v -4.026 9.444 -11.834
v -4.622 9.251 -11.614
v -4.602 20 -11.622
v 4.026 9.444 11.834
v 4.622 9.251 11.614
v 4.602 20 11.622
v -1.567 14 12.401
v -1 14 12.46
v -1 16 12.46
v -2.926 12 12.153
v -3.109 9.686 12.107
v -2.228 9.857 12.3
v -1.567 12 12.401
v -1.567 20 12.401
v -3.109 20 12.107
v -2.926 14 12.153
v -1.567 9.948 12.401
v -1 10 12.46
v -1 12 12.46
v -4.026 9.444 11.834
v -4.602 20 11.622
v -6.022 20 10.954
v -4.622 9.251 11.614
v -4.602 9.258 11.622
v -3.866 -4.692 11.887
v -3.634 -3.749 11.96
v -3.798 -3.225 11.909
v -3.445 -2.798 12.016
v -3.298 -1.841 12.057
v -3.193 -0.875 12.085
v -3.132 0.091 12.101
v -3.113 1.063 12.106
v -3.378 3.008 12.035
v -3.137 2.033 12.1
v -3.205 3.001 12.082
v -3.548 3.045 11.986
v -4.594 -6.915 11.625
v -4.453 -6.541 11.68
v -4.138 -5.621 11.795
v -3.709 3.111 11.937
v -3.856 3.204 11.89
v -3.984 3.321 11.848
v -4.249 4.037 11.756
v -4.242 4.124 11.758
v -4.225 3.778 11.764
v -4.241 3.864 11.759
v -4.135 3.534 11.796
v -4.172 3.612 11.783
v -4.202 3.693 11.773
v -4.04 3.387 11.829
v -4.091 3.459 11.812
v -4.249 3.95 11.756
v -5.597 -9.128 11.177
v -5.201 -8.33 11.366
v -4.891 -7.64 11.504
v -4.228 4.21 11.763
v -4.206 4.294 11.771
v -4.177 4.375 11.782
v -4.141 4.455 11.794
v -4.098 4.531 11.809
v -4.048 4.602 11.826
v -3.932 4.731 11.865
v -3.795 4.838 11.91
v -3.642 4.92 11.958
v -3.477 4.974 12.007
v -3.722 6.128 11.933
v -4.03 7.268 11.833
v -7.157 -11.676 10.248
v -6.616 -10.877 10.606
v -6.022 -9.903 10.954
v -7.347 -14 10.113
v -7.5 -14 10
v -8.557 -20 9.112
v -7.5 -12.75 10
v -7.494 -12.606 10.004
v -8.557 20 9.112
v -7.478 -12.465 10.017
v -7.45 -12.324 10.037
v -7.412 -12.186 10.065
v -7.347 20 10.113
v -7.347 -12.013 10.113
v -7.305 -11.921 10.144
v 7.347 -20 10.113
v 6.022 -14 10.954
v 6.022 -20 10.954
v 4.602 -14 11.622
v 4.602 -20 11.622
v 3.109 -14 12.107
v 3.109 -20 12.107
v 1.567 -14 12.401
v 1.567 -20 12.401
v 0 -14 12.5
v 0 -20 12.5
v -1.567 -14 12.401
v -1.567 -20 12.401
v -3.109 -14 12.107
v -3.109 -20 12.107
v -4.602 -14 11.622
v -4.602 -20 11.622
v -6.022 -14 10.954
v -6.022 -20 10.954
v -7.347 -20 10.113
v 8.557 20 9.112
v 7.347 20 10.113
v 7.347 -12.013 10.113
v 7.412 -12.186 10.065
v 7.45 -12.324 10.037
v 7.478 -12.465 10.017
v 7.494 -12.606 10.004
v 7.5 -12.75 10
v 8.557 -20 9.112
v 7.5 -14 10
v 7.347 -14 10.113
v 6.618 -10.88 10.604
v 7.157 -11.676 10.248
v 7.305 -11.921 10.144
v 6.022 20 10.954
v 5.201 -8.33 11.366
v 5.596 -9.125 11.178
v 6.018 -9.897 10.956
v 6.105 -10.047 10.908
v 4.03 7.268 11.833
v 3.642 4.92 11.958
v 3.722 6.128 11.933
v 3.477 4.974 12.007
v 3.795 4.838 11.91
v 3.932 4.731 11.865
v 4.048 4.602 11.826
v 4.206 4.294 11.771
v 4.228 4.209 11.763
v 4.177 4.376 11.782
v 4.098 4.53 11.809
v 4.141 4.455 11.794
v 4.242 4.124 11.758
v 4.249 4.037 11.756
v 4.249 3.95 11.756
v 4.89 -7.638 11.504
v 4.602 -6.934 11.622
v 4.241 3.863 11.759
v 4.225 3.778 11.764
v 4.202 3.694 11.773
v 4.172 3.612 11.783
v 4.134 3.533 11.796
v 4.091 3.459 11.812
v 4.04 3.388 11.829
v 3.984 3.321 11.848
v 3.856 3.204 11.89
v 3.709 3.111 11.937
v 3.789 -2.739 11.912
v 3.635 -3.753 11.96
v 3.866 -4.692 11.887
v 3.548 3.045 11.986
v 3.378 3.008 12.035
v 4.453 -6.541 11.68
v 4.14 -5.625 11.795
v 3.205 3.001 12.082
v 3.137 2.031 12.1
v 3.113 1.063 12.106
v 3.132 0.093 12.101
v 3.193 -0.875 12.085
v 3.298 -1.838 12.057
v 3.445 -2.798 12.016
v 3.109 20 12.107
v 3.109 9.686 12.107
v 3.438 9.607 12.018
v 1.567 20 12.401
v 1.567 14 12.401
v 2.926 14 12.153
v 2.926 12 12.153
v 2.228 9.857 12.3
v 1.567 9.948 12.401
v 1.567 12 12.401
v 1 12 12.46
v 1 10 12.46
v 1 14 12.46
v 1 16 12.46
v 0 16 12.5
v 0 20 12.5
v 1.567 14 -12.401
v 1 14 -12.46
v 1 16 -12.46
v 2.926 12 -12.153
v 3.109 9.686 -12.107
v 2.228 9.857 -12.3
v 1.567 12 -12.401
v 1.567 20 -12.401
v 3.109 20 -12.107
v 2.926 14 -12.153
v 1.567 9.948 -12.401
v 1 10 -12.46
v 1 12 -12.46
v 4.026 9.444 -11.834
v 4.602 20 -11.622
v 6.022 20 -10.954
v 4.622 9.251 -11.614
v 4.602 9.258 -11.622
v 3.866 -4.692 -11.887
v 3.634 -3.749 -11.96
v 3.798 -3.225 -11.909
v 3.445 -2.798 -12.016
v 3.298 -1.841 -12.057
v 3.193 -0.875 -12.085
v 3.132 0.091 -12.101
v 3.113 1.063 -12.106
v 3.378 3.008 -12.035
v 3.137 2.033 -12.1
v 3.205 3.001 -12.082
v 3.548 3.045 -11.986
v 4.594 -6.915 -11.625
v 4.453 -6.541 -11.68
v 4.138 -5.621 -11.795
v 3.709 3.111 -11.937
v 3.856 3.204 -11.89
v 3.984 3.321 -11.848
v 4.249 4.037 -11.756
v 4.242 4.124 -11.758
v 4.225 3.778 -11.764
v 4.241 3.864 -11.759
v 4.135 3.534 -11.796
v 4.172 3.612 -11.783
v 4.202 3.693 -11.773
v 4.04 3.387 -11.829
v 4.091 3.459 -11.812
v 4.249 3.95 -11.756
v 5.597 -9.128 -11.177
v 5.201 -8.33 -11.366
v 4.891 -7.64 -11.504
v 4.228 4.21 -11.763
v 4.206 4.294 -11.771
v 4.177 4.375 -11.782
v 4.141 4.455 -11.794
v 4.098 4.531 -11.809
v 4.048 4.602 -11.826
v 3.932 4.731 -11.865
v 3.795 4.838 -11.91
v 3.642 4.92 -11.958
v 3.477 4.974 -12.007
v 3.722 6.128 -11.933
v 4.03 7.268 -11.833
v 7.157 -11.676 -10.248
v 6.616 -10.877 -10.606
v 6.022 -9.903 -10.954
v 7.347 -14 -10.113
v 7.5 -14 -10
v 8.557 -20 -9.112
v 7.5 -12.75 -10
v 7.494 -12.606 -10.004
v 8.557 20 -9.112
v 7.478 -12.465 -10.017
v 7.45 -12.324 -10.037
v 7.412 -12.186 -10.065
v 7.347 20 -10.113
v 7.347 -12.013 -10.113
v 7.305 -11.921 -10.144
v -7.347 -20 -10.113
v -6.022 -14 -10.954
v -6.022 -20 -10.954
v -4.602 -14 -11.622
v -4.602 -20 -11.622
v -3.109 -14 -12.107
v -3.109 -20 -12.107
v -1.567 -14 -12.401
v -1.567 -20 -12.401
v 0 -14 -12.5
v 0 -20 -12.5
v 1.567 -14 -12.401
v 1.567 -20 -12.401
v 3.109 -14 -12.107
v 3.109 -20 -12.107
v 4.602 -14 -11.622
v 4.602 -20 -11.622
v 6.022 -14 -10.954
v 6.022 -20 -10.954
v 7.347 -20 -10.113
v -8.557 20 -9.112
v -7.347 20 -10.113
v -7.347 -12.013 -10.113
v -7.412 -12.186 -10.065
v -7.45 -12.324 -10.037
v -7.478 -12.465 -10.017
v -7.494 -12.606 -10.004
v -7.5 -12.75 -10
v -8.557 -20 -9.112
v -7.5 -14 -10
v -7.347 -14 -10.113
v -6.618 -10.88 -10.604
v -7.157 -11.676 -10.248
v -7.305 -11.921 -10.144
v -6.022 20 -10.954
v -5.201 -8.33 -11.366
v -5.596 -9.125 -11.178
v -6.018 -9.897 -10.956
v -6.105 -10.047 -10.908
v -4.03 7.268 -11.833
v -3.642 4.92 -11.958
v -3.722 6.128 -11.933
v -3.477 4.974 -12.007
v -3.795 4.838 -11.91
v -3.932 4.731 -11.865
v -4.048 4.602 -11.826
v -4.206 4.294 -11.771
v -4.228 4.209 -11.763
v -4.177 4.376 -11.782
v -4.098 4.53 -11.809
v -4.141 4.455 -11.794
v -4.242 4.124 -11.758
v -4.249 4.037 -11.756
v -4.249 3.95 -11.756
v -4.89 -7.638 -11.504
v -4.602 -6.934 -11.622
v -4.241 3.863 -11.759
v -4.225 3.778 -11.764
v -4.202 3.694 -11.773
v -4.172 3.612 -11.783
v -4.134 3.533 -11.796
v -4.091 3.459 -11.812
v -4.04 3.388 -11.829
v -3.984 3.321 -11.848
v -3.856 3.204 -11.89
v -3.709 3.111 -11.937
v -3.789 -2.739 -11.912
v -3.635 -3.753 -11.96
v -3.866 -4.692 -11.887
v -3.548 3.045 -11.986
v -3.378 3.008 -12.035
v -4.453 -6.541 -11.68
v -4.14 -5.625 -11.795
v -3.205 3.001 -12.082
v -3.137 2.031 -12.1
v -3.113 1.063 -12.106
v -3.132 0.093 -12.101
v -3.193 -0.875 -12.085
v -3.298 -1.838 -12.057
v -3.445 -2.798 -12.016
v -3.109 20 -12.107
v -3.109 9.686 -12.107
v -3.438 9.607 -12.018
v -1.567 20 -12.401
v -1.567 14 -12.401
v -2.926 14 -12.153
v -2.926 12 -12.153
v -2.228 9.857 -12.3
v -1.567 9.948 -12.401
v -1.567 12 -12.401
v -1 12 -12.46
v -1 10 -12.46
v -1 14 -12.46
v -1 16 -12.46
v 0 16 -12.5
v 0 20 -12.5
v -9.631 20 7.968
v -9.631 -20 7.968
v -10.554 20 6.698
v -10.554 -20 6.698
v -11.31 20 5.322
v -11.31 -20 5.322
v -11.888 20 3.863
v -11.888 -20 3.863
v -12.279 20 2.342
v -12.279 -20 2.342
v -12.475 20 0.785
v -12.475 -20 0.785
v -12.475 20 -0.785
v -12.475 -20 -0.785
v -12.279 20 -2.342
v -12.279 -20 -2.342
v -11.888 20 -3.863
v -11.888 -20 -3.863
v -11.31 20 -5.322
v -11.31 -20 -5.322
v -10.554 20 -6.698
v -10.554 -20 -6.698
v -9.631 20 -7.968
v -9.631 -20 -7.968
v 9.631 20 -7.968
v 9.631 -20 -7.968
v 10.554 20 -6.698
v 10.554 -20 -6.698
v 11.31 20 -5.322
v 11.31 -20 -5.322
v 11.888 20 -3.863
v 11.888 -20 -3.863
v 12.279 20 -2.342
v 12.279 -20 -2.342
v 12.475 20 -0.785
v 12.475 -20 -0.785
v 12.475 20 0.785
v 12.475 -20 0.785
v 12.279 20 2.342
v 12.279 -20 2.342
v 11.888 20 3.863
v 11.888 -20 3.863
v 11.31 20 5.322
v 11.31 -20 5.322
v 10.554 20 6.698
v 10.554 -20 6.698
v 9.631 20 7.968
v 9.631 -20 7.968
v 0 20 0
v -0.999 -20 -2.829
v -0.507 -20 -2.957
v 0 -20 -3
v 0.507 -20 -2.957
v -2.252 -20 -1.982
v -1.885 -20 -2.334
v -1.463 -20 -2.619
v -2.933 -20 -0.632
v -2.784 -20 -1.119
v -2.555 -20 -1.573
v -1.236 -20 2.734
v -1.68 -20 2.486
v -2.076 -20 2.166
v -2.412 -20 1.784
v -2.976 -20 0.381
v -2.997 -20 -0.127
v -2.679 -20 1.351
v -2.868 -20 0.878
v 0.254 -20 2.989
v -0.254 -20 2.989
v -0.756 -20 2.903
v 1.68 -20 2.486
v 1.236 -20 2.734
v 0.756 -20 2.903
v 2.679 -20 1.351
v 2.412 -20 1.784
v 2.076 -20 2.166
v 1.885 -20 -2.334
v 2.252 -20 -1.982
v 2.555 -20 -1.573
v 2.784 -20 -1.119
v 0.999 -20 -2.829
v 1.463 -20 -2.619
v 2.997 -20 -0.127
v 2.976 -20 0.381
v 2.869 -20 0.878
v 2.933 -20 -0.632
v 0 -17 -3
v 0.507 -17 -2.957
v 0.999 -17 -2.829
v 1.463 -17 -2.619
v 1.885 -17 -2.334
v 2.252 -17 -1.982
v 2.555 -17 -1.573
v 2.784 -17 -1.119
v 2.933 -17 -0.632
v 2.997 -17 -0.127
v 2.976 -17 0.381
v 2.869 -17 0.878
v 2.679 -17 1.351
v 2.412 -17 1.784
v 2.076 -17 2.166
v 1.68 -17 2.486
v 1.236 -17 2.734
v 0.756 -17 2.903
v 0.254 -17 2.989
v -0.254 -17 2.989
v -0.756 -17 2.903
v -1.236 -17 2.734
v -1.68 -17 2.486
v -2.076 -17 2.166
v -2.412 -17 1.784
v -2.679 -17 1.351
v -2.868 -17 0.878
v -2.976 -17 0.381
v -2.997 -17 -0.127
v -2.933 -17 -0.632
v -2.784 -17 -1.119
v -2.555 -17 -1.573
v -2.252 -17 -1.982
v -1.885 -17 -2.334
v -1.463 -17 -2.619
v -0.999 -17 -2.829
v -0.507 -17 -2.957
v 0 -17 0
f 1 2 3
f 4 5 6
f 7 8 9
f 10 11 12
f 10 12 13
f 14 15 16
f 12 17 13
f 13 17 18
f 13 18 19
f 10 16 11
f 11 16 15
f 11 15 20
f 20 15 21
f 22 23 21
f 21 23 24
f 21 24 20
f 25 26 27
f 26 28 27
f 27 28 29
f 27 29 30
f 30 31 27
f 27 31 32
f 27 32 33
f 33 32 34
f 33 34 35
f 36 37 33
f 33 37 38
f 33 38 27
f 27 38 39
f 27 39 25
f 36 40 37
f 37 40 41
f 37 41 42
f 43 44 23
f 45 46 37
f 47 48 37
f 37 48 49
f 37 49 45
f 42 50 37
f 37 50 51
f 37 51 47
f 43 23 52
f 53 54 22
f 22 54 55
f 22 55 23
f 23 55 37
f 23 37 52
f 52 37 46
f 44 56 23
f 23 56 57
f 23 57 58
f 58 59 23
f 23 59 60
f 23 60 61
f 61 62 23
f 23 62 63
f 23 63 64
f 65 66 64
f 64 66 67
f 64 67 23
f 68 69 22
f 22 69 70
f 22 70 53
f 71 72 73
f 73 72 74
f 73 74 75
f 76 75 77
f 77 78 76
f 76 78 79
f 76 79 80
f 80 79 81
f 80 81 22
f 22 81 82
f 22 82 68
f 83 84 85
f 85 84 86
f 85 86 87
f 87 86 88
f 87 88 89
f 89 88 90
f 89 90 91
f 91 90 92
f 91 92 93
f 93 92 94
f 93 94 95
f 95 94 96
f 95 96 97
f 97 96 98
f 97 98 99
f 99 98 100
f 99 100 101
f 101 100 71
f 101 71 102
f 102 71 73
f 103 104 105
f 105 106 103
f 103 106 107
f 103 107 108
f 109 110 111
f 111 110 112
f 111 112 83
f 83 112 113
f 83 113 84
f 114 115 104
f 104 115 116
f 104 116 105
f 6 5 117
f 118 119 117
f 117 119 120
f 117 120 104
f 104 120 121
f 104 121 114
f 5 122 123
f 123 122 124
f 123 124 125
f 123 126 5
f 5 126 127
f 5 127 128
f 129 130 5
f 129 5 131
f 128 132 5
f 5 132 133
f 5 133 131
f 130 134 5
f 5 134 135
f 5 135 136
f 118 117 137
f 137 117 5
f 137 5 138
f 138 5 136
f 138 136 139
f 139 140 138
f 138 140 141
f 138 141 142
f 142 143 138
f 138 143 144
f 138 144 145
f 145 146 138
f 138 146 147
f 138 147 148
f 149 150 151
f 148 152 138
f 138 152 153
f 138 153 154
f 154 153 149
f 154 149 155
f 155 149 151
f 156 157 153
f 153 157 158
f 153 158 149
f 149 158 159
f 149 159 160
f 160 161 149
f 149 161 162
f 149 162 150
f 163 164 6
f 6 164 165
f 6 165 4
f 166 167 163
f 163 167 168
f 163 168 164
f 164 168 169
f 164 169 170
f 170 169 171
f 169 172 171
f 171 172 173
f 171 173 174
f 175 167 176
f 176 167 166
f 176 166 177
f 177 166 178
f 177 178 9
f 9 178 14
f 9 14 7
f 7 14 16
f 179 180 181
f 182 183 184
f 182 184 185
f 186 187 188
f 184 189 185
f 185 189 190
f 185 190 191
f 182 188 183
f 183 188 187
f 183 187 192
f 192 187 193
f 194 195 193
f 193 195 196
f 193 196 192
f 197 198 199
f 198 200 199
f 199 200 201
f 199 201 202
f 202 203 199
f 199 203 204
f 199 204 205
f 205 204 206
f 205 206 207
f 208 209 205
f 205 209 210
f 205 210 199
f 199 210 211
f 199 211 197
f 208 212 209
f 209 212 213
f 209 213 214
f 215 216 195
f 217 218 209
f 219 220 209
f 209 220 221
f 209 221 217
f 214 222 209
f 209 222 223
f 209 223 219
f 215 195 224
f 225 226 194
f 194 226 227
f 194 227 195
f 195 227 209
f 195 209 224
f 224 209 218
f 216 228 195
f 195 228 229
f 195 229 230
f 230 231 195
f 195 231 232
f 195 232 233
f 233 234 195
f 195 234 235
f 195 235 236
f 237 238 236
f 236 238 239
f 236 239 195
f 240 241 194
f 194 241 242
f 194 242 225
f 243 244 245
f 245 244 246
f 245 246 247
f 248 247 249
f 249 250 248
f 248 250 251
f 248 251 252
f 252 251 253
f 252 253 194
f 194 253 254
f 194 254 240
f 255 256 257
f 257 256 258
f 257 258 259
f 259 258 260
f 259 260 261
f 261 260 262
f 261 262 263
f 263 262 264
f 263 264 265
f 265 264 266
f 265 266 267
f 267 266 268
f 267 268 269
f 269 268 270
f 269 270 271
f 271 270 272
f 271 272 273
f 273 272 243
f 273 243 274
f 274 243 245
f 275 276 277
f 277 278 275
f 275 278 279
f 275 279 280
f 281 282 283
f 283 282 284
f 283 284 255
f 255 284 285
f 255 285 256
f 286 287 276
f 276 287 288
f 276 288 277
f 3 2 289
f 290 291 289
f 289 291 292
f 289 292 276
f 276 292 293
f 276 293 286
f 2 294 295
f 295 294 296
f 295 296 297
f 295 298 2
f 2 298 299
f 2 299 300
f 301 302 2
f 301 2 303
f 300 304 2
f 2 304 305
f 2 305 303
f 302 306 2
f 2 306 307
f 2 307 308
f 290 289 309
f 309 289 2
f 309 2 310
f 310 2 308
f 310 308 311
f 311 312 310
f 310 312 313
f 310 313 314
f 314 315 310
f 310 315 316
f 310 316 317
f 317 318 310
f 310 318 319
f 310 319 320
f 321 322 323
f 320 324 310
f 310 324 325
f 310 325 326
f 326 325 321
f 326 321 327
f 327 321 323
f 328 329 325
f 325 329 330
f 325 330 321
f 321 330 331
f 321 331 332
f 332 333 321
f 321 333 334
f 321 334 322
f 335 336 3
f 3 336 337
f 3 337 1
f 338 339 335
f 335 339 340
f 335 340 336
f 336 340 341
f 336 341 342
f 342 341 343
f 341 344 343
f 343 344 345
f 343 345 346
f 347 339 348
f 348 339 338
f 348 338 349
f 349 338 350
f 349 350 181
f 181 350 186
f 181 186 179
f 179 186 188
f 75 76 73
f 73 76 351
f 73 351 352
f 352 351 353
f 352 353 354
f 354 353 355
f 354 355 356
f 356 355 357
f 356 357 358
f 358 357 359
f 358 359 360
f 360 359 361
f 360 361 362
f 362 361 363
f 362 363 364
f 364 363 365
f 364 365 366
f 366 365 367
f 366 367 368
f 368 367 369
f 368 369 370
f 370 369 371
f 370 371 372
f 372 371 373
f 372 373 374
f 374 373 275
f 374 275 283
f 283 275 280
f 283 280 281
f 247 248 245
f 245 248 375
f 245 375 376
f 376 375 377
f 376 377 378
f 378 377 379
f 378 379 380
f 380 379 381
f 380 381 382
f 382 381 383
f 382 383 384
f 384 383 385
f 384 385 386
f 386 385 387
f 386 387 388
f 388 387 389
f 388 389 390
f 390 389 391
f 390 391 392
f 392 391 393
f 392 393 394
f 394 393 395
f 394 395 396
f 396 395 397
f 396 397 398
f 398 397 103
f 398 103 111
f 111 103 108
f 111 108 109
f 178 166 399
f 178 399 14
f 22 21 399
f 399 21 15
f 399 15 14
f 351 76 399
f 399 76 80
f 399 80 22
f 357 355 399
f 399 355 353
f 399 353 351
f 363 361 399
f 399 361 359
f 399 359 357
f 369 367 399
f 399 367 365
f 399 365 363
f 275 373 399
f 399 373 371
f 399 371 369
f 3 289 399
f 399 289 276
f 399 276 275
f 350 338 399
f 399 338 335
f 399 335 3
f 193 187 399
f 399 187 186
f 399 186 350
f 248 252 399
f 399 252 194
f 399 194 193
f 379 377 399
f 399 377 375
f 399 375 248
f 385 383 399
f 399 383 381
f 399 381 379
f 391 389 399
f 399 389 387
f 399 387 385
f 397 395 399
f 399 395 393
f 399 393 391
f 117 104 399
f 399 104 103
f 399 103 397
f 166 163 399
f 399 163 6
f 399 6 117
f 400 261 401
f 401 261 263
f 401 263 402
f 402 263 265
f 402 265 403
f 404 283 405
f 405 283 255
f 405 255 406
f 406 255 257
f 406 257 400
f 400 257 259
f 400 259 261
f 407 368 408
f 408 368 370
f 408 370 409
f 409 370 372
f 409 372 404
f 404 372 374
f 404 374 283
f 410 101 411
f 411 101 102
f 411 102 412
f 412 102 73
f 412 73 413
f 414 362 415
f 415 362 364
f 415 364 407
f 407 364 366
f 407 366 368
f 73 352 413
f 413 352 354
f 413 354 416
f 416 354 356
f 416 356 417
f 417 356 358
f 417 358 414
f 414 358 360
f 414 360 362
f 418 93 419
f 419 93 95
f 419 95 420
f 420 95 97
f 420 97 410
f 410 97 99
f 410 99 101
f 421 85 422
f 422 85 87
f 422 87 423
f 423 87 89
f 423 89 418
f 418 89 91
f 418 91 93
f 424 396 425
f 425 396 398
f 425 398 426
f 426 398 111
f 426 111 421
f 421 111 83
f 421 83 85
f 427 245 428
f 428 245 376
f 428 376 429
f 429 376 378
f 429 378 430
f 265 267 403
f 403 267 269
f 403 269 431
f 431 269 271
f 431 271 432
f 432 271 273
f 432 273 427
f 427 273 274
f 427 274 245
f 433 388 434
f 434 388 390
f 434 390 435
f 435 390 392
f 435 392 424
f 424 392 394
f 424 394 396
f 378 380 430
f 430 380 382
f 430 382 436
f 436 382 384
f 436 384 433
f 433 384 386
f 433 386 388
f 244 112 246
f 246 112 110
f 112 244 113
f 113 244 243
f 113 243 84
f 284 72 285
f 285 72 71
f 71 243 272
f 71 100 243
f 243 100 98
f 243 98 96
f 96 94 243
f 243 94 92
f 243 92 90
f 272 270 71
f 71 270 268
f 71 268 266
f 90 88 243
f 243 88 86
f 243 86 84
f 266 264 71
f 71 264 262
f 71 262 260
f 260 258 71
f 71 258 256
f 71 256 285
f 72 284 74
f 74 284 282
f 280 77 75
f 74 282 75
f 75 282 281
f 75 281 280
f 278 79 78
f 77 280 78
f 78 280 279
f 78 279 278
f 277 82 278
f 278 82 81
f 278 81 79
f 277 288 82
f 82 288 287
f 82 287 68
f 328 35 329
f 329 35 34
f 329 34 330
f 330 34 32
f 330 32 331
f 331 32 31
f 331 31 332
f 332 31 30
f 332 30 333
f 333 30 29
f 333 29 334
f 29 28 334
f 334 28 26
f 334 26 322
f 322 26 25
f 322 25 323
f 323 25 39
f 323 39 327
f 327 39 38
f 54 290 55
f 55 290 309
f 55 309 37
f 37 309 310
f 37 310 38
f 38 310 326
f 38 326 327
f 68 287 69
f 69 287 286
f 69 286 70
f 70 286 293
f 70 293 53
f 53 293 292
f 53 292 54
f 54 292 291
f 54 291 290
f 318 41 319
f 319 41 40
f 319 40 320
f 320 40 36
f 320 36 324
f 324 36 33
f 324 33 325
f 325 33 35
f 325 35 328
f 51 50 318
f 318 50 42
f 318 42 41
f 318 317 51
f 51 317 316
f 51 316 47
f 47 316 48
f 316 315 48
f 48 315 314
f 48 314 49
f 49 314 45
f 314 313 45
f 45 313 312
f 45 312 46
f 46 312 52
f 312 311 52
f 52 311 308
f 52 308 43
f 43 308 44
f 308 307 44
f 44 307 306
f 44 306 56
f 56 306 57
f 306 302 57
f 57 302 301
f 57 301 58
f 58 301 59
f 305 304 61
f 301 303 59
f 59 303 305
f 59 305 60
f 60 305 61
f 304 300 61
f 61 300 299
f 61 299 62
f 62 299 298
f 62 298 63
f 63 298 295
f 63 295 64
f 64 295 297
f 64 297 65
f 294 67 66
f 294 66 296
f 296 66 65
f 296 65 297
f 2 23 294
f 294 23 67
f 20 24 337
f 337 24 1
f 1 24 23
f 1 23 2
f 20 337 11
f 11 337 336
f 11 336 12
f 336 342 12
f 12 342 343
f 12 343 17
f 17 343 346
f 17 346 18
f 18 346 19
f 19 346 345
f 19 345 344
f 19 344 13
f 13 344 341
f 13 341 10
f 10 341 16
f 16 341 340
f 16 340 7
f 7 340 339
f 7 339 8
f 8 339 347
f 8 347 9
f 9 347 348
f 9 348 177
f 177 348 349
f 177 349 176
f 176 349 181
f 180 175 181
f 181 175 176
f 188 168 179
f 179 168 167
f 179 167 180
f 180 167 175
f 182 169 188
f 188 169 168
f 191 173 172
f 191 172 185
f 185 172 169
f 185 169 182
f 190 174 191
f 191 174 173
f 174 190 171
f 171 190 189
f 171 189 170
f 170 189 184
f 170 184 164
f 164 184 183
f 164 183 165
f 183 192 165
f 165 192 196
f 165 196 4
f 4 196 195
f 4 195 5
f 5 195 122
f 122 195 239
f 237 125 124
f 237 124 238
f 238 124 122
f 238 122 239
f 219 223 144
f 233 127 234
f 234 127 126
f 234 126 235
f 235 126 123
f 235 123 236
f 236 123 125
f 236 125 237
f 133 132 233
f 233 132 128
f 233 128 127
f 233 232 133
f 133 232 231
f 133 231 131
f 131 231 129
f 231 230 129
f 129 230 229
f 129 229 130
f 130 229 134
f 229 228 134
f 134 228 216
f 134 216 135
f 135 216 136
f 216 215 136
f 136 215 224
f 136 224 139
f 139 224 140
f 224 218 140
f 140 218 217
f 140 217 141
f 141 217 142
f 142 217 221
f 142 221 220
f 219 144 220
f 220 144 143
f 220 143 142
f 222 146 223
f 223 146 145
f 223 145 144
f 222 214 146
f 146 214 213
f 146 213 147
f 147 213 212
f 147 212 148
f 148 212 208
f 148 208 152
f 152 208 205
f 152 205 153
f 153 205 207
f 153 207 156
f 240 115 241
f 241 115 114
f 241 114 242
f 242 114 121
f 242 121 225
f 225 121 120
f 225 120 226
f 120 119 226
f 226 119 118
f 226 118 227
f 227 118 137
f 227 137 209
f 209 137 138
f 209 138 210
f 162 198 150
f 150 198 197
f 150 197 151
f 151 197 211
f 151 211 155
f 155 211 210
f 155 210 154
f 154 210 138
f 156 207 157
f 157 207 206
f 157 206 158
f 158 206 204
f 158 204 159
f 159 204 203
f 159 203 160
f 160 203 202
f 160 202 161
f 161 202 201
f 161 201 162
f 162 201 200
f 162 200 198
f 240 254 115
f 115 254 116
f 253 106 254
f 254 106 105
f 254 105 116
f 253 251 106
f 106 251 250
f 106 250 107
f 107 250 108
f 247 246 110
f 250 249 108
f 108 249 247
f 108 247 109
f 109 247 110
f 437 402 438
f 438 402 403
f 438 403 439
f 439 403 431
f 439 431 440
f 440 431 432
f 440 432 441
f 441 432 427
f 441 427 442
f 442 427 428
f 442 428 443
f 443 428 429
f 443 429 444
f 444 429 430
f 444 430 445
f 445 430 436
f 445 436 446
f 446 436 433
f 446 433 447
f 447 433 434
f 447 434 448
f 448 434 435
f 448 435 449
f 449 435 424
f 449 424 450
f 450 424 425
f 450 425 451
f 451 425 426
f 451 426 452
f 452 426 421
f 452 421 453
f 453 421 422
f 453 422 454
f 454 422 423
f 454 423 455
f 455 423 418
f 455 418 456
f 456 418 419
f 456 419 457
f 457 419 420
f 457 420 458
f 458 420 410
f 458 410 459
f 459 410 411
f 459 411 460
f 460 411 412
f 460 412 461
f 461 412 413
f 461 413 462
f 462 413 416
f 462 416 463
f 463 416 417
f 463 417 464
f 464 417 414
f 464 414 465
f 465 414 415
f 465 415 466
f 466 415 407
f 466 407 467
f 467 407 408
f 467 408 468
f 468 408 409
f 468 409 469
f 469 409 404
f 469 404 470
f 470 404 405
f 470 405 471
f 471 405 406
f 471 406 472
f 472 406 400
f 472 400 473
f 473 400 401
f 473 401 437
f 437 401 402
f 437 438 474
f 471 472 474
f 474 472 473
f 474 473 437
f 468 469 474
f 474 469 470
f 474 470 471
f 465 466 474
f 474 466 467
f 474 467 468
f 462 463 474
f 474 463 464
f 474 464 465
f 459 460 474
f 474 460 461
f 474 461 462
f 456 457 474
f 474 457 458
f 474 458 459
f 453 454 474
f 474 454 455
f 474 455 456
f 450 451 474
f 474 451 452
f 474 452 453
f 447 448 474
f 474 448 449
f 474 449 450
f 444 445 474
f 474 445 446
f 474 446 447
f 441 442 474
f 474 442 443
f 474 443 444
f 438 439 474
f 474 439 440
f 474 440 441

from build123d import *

# Parameters (mm, degrees)
SKETCH2_R               = 12.5
BOSS_EXTRUDE1_DEPTH     = 20
CUT_EXTRUDE1_DEPTH      = 13.5
CUT_EXTRUDE1_DEPTH_BACK = 13.5
SKETCH4_R               = 3
CUT_EXTRUDE2_DEPTH      = 3


with BuildPart() as part:
    # Sketch2 → Boss-Extrude1 (new body, symmetric)
    with BuildSketch(Plane(origin=(0, 0, 0), x_dir=(1, 0, 0), z_dir=(0, 1, 0))):
        Circle(SKETCH2_R)
    extrude(amount=BOSS_EXTRUDE1_DEPTH, both=True)

    # Sketch3 → Cut-Extrude1 (cut, two sides)
    with BuildSketch(Plane.XY) as cut_extrude1_sk:
        with BuildLine():
            Line((-7.5, -14), (7.5, -14))
            Line((7.5, -14), (7.5, -12.75))
            ThreePointArc((7.5, -12.75), (7.412263886, -12.186373325), (7.157358145, -11.676083489))
            ThreePointArc((7.157358145, -11.676083489), (3.865958131, -4.691681234), (3.204614294, 3.001030462))
            ThreePointArc((3.204614294, 3.001030462), (4.240621129, 3.863362603), (3.476741803, 4.973954904))
            ThreePointArc((3.476741803, 4.973954904), (3.722208484, 6.12821111), (4.029528967, 7.267559785))
            Line((4.029528967, 7.267559785), (4.622243509, 9.250708497))
            ThreePointArc((4.622243509, 9.250708497), (2.835976896, 9.745509591), (1, 10))
            Line((1, 10), (1, 12))
            Line((1, 12), (2.92625895, 12))
            Line((2.92625895, 12), (2.92625895, 14))
            Line((2.92625895, 14), (1, 14))
            Line((1, 14), (1, 16))
            Line((1, 16), (-1, 16))
            Line((-1, 16), (-1, 14))
            Line((-1, 14), (-2.92625895, 14))
            Line((-2.92625895, 14), (-2.92625895, 12))
            Line((-2.92625895, 12), (-1, 12))
            Line((-1, 12), (-1, 10))
            ThreePointArc((-1, 10), (-2.835976896, 9.745509591), (-4.622243509, 9.250708497))
            Line((-4.622243509, 9.250708497), (-4.029528967, 7.267559785))
            ThreePointArc((-4.029528967, 7.267559785), (-3.722208484, 6.12821111), (-3.476741803, 4.973954904))
            ThreePointArc((-3.476741803, 4.973954904), (-4.240621129, 3.863362603), (-3.204614294, 3.001030462))
            ThreePointArc((-3.204614294, 3.001030462), (-3.865958131, -4.691681234), (-7.157358145, -11.676083489))
            ThreePointArc((-7.157358145, -11.676083489), (-7.412263886, -12.186373325), (-7.5, -12.75))
            Line((-7.5, -12.75), (-7.5, -14))
        make_face()
    extrude(amount=CUT_EXTRUDE1_DEPTH, mode=Mode.SUBTRACT)
    extrude(cut_extrude1_sk.sketch, amount=-CUT_EXTRUDE1_DEPTH_BACK, mode=Mode.SUBTRACT)

    # Sketch4 → Cut-Extrude2 (cut)
    with BuildSketch(Plane(origin=(0, -20, 0), x_dir=(-1, 0, 0), z_dir=(0, -1, 0))):
        Circle(SKETCH4_R)
    extrude(amount=-CUT_EXTRUDE2_DEPTH, mode=Mode.SUBTRACT)


solid = part.part
